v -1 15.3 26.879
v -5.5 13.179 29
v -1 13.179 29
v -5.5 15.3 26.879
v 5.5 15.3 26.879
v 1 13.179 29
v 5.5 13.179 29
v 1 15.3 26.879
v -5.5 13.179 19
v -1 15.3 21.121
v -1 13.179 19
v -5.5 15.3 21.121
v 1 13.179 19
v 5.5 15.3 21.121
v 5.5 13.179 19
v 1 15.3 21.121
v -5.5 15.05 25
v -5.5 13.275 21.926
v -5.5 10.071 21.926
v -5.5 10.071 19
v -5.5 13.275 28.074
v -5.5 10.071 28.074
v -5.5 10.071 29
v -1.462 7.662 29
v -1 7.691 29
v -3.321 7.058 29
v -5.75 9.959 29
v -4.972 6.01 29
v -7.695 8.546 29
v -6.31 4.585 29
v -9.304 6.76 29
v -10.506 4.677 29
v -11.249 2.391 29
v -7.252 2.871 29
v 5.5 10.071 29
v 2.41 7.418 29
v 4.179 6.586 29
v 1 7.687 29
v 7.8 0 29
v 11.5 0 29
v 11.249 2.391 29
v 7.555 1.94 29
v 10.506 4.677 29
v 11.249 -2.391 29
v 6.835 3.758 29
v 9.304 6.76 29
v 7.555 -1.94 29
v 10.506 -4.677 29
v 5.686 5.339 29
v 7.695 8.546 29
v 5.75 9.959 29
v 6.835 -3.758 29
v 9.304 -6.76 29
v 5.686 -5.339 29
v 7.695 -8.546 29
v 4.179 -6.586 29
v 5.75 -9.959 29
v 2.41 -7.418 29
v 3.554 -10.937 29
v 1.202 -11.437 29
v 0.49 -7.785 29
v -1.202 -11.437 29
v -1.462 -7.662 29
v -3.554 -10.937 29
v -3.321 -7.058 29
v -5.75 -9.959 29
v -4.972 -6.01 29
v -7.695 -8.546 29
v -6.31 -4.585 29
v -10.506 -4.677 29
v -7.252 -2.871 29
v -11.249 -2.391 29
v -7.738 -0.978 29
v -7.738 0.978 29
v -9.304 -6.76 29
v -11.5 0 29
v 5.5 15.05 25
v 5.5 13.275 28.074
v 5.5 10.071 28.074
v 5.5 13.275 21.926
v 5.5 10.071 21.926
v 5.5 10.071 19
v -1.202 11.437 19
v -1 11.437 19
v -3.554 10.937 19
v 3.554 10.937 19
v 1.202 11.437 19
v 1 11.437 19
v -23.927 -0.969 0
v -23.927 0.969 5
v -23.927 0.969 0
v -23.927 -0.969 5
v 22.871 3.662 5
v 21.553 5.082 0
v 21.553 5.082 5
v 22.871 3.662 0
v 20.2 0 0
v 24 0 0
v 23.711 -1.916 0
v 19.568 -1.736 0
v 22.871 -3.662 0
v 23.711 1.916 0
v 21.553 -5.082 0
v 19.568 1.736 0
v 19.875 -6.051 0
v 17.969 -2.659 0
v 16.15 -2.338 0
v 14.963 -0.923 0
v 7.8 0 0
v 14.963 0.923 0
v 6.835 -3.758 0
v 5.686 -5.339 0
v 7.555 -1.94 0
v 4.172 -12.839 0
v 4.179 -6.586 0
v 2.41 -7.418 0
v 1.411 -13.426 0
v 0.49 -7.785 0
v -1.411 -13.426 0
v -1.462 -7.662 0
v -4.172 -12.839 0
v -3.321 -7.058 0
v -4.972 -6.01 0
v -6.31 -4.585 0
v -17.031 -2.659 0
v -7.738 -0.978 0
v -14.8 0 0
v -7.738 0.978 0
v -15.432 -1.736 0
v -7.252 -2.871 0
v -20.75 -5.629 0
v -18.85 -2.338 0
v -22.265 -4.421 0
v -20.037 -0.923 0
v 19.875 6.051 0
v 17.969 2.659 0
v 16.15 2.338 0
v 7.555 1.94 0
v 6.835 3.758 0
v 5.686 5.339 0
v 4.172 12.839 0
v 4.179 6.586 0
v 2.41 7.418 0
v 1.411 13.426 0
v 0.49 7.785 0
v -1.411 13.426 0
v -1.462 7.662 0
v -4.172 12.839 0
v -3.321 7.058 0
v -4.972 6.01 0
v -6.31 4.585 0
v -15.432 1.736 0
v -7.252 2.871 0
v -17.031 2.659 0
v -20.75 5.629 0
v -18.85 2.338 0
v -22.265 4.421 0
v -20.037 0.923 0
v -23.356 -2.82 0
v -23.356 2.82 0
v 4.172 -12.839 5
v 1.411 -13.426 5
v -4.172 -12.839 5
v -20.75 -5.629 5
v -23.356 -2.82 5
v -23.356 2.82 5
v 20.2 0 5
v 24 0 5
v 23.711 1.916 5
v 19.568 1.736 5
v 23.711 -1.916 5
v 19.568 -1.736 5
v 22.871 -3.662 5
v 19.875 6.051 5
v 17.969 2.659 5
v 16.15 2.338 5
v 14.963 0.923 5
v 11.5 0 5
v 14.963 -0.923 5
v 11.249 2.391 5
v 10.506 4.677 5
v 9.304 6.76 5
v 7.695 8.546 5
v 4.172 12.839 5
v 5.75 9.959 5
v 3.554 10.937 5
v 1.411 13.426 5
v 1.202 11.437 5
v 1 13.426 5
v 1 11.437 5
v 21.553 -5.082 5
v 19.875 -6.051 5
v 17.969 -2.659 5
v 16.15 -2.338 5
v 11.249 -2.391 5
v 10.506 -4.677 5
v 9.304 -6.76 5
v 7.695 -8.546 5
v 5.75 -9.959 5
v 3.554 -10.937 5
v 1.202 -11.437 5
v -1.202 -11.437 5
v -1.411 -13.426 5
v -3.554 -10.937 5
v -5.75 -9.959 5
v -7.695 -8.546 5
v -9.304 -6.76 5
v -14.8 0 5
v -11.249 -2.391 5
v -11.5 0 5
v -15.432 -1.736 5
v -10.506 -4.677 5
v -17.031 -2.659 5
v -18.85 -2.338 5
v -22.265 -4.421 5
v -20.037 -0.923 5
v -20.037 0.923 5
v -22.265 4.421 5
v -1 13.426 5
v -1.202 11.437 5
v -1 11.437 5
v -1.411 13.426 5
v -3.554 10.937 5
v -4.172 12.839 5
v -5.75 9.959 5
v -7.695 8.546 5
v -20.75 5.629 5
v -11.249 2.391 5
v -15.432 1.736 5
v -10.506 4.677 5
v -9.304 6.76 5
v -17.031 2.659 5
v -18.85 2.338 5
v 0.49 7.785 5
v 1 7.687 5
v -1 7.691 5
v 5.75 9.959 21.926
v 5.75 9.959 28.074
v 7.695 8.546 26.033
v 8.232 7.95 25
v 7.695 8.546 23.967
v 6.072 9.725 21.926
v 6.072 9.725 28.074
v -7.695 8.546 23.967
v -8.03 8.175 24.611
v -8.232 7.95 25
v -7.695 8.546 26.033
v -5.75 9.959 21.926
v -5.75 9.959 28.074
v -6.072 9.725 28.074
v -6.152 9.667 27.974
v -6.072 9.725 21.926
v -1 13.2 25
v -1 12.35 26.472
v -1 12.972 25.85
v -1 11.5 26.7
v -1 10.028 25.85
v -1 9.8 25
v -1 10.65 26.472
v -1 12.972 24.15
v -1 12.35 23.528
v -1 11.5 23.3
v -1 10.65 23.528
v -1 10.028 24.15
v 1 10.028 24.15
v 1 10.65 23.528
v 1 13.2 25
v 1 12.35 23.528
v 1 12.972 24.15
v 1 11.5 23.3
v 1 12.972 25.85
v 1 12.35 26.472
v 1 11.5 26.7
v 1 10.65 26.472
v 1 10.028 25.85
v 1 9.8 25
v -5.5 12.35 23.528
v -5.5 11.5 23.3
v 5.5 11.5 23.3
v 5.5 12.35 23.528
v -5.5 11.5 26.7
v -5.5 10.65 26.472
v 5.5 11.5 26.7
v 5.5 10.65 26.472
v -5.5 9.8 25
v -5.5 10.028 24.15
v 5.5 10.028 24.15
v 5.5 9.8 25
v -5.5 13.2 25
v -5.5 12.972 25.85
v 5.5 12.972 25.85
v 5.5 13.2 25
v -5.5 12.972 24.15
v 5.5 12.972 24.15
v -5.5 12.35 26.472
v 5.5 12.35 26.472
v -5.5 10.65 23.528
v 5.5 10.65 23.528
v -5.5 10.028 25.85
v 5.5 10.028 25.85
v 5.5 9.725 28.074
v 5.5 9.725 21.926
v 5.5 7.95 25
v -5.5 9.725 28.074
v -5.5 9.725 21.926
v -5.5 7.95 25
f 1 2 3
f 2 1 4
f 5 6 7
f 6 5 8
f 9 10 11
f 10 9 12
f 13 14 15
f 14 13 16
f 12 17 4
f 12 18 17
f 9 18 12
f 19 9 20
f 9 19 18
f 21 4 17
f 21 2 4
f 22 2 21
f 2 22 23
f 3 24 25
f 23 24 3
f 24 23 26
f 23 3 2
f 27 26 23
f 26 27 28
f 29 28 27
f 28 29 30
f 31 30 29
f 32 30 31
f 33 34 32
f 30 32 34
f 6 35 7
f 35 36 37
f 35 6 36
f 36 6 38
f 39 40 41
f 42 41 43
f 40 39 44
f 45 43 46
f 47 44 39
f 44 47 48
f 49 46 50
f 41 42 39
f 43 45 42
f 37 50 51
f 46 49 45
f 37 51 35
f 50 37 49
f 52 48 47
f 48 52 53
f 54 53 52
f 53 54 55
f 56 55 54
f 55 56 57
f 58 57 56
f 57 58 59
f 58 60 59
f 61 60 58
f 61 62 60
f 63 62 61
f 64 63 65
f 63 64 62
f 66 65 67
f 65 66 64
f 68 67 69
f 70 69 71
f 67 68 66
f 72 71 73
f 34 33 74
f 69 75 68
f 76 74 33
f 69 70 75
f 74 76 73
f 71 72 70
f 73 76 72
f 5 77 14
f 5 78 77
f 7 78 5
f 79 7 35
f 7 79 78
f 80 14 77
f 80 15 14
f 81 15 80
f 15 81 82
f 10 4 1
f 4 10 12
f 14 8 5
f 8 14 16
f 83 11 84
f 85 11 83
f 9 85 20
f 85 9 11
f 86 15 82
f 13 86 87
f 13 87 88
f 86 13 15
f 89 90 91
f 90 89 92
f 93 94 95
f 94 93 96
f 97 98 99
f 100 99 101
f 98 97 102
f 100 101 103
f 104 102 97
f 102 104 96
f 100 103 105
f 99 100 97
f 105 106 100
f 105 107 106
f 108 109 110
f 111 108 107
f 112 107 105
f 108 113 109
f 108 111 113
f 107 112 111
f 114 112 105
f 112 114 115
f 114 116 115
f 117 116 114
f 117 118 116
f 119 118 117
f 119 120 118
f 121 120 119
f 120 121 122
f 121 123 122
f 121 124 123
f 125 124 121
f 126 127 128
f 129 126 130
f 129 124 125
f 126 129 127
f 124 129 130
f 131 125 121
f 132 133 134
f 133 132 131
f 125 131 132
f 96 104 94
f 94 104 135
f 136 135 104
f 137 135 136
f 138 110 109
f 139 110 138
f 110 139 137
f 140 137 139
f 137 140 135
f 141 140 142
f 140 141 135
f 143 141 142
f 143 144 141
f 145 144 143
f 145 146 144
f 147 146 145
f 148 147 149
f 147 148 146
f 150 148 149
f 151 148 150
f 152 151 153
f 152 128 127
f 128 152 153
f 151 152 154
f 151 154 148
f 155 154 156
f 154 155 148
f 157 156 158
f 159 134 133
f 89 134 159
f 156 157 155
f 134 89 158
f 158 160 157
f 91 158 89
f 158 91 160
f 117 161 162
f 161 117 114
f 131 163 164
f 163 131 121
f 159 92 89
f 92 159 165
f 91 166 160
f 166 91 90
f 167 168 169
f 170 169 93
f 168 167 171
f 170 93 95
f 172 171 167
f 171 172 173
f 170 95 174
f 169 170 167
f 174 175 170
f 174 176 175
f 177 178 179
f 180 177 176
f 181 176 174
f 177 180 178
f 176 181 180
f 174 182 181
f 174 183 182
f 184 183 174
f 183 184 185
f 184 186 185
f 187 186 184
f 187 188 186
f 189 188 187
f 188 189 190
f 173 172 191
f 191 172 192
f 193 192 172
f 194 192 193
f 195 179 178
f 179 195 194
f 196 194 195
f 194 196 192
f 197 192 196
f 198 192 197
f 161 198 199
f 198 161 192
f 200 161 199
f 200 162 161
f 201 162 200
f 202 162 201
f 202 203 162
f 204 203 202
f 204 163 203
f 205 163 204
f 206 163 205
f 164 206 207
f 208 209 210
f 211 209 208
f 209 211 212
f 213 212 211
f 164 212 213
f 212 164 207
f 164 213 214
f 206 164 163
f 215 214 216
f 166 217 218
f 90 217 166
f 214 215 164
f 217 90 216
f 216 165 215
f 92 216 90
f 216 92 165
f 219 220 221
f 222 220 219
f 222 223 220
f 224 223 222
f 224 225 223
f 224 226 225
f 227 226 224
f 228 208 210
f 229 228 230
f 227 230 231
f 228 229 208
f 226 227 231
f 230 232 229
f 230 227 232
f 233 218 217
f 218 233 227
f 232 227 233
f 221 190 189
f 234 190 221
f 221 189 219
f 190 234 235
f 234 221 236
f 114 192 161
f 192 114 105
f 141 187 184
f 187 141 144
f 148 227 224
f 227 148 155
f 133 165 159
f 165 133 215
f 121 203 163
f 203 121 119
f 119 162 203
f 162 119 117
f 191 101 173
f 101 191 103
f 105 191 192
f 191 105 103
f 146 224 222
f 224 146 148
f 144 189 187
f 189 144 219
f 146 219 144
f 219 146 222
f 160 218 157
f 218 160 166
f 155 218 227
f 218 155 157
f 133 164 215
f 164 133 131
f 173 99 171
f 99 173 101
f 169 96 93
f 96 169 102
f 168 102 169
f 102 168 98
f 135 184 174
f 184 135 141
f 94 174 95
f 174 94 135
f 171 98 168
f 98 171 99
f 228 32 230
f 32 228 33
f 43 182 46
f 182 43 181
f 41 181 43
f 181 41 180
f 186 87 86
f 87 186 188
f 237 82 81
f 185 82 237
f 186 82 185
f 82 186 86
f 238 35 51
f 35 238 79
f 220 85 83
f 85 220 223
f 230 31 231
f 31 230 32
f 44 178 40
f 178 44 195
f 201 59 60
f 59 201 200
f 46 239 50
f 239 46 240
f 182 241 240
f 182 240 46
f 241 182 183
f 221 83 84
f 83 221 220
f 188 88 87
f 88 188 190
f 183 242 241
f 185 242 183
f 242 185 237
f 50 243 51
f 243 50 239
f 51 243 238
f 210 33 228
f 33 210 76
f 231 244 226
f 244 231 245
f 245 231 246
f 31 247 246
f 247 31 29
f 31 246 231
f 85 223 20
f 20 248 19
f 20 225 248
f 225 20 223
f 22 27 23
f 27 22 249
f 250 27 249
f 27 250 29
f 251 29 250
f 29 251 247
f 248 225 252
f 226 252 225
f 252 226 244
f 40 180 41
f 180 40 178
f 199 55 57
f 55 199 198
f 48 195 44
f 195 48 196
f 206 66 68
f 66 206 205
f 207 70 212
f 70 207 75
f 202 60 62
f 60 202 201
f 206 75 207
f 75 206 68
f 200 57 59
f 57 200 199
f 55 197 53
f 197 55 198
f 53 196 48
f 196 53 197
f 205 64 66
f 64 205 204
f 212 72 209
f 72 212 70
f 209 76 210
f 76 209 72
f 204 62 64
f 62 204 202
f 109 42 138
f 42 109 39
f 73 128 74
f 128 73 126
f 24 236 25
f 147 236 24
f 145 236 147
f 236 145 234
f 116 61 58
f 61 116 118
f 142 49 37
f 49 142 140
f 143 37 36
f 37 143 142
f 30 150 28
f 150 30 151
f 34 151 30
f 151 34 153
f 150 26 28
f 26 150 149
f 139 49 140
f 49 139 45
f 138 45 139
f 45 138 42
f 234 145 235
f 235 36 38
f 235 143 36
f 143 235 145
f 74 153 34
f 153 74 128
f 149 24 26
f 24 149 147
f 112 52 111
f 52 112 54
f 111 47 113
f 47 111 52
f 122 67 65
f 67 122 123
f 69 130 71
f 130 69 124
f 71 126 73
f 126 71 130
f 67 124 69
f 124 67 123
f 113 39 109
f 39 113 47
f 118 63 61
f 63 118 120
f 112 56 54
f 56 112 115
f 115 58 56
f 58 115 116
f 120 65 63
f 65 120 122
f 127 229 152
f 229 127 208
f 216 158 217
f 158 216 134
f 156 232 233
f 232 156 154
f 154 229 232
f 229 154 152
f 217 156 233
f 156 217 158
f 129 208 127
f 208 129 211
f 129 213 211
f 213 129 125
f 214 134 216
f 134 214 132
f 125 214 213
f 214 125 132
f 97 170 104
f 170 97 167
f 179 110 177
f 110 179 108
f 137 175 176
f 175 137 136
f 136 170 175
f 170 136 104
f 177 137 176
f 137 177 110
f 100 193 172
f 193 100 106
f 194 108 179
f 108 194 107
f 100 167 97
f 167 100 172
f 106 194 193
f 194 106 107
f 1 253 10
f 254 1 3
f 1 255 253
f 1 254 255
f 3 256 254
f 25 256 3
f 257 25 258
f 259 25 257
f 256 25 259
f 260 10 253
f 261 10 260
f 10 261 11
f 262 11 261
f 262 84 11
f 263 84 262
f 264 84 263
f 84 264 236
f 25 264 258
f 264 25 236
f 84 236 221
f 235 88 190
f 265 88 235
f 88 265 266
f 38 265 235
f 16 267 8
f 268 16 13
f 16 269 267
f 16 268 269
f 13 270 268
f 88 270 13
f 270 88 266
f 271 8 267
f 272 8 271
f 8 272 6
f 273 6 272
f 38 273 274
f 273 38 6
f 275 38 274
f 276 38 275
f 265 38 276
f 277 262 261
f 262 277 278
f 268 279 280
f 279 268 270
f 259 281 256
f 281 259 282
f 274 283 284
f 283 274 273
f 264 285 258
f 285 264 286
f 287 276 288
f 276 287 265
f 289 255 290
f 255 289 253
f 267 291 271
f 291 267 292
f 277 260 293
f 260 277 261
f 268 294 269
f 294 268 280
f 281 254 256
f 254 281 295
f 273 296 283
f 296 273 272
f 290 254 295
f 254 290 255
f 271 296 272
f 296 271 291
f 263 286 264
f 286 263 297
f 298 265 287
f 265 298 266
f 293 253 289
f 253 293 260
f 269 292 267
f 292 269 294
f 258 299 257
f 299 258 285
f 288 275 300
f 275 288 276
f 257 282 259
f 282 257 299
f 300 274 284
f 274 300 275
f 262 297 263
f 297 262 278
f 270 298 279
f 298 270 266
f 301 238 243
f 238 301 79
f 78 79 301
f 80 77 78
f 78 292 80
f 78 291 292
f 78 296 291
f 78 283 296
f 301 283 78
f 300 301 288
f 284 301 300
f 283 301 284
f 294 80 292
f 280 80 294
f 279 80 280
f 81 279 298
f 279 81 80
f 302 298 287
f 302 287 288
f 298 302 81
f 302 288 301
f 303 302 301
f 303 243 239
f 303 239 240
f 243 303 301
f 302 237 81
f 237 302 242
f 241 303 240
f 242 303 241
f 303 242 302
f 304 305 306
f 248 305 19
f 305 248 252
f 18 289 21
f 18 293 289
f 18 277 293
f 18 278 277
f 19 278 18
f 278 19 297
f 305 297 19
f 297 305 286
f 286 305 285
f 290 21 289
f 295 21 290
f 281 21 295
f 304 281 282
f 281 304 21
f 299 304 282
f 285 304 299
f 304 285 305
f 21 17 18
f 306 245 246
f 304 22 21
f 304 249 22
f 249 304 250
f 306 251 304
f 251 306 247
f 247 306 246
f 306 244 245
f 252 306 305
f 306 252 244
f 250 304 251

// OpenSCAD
// file: Hexa.scad
// include <Hexa.scad>;

m3h = 2.4; 		// hauteur
m3k = 5.5; 		// plat a plat
m3e = 6.3; 		// pointe a pointe
m3r = m3e/2; 	// rayon pointe a pointe
m3p = 0.5; 		// pas

m4h = 3.2;
m4k = 7;
m4e = 8.08;
m4r = m4e/2;
m4p = 0.7;

m5h = 4.7;
m5k = 8;
m5e = 9.23;
m5r = m5e/2;
m5p = 0.8;

m6h = 5.2;
m6k = 10;
m6e = 11.54;
m6r = m6e/2;
m6p = 1.0;

m8h = 6.8;
m8k = 13;
m8e = 15.01;
m8r = m8e/2;
m8p = 1.25;

m10h = 8.4;
m10k = 17;
m10e = 19.62;
m10r = m10e/2;
m10p = 1.5;

m12h = 10.8;
m12k = 19;
m12e = 21.93;
m12r = m12e/2;
m12p = 1.75;

coef = 2/sqrt(3);
echo(coef);

module m3(jk=0, jh=0, jvis=0){
    d = m3k * coef;
    cylinder(r=d/2+jk, h=m3h+jh, $fn=6);
    if(jvis != 0){
        translate([0,0,-30]) cylinder(r=3/2+jvis, h=60, $fn=12);
    }
}
// file: Cubo.scad
// -----------------
// module cubo
// GPL v2.0
// yvoz.lg@gmail.com
// -----------------


// exemples ----

cubo([10,10,5], [1,2,3,4,5,6,7,8,9,10,11,12], 1.5);

translate([15, 0, 0]){
	difference(){
		cubo([10,20,5], [2,3], 3);
		translate([5,10,-1]) cylinder(r=2, h=7, $fn=12);
	}
}

translate([-15, 0, 0]){
	difference(){
		cube([10,20,15]);
		translate([3,3,3]) cubo([10,20,50], [1,5], 3);
	}
}

// ------------

module cubo(dim, cro, a){

	diago = sqrt(pow(a,2)+pow(a,2));
	difference(){
		cube(dim);
		
		for(i=cro){
			//x
			if(i==1){
				translate([-1, 0, -diago/2])
				rotate([45, 0, 0])
				cube([dim.x+2, a, a]);
			}
			if(i==2){
				translate([-1, 0, dim.z-diago/2])
				rotate([45, 0, 0])
				cube([dim.x+2, a, a]);
			}
			if(i==3){
				translate([-1, dim.y, dim.z-diago/2])
				rotate([45, 0, 0])
				cube([dim.x+2, a, a]);
			}
			if(i==4){
				translate([-1, dim.y, -diago/2])
				rotate([45, 0, 0])
				cube([dim.x+2, a, a]);
			}
			//y
			if(i==5){
				translate([-diago/2, -1, 0])
				rotate([0, 45, 0])
				cube([a, dim.y+2, a]);
			}
			if(i==6){
				translate([dim.x-diago/2, -1, 0])
				rotate([0, 45, 0])
				cube([a, dim.y+2, a]);
			}
			if(i==7){
				translate([dim.x-diago/2, -1, dim.z])
				rotate([0, 45, 0])
				cube([a, dim.y+2, a]);
			}
			if(i==8){
				translate([-diago/2, -1, dim.z])
				rotate([0, 45, 0])
				cube([a, dim.y+2, a]);
			}
			//z
			if(i==9){
				translate([0, -diago/2, -1])
				rotate([0, 0, 45])
				cube([a, a, dim.z+2]);
			}
			if(i==10){
				translate([0, dim.y-diago/2, -1])
				rotate([0, 0, 45])
				cube([a, a, dim.z+2]);
			}
			if(i==11){
				translate([dim.x, dim.y-diago/2, -1])
				rotate([0, 0, 45])
				cube([a, a, dim.z+2]);
			}
			if(i==12){
				translate([dim.x, -diago/2, -1])
				rotate([0, 0, 45])
				cube([a, a, dim.z+2]);
			}
		}
	}
}
// main file
epz = 5;
rdou = 15/2;
ldou = 24;
epx = 4;
epf = 2;

esp = 35;

rvd = 5/2;

cox = 11;
coy = epx+3.5;
coz = 10;

use<Cubo.scad>;
include <Hexa.scad>;

difference(){
	union(){
		hull(){
			translate([-esp/2, 0, 0]) cylinder(r=rvd+epx, h=epz);
			translate([0, 0, 0]) cylinder(r=rdou+epx*1.5, h=epz);
			translate([+esp/2, 0, 0]) cylinder(r=rvd+epx, h=epz);
		}
		// hauteur
		translate([0, 0, epz]) cylinder(r=rdou+epx, h=ldou);
		
		
		// cube collier
		translate([-cox/2, rdou+0.3, epz+ldou-coz]) cubo([cox,coy,coz], [3,4], 3);
		
	}
	// douille
	translate([0, 0, -1]) cylinder(r=rdou+0.3, h=epz+ldou+2);
	// vis
	translate([-esp/2, 0, -1]) cylinder(r=rvd+0.2, h=epz+2);
	translate([esp/2, 0, -1]) cylinder(r=rvd+0.2, h=epz+2);
	// fente
	translate([-epf/2, 0, epz]) cube([epf, rdou+epx+10, ldou+1]);
	
	// vis serrage
	translate([-cox, rdou+epx, epz+ldou-4]) rotate([0,90,0]) cylinder(r=1.5+0.2, h=20, $fn=3*4);
	translate([cox/2 , rdou+epx, epz+ldou-4]) rotate([0,90,0]) rotate([0,0,30]) cylinder(r=m3r+0.4, h=20, $fn=6);
	translate([-cox/2 , rdou+epx, epz+ldou-4]) rotate([0,-90,0]) rotate([0,0,30]) cylinder(r=m3r+0.4, h=20, $fn=6);
	
}
